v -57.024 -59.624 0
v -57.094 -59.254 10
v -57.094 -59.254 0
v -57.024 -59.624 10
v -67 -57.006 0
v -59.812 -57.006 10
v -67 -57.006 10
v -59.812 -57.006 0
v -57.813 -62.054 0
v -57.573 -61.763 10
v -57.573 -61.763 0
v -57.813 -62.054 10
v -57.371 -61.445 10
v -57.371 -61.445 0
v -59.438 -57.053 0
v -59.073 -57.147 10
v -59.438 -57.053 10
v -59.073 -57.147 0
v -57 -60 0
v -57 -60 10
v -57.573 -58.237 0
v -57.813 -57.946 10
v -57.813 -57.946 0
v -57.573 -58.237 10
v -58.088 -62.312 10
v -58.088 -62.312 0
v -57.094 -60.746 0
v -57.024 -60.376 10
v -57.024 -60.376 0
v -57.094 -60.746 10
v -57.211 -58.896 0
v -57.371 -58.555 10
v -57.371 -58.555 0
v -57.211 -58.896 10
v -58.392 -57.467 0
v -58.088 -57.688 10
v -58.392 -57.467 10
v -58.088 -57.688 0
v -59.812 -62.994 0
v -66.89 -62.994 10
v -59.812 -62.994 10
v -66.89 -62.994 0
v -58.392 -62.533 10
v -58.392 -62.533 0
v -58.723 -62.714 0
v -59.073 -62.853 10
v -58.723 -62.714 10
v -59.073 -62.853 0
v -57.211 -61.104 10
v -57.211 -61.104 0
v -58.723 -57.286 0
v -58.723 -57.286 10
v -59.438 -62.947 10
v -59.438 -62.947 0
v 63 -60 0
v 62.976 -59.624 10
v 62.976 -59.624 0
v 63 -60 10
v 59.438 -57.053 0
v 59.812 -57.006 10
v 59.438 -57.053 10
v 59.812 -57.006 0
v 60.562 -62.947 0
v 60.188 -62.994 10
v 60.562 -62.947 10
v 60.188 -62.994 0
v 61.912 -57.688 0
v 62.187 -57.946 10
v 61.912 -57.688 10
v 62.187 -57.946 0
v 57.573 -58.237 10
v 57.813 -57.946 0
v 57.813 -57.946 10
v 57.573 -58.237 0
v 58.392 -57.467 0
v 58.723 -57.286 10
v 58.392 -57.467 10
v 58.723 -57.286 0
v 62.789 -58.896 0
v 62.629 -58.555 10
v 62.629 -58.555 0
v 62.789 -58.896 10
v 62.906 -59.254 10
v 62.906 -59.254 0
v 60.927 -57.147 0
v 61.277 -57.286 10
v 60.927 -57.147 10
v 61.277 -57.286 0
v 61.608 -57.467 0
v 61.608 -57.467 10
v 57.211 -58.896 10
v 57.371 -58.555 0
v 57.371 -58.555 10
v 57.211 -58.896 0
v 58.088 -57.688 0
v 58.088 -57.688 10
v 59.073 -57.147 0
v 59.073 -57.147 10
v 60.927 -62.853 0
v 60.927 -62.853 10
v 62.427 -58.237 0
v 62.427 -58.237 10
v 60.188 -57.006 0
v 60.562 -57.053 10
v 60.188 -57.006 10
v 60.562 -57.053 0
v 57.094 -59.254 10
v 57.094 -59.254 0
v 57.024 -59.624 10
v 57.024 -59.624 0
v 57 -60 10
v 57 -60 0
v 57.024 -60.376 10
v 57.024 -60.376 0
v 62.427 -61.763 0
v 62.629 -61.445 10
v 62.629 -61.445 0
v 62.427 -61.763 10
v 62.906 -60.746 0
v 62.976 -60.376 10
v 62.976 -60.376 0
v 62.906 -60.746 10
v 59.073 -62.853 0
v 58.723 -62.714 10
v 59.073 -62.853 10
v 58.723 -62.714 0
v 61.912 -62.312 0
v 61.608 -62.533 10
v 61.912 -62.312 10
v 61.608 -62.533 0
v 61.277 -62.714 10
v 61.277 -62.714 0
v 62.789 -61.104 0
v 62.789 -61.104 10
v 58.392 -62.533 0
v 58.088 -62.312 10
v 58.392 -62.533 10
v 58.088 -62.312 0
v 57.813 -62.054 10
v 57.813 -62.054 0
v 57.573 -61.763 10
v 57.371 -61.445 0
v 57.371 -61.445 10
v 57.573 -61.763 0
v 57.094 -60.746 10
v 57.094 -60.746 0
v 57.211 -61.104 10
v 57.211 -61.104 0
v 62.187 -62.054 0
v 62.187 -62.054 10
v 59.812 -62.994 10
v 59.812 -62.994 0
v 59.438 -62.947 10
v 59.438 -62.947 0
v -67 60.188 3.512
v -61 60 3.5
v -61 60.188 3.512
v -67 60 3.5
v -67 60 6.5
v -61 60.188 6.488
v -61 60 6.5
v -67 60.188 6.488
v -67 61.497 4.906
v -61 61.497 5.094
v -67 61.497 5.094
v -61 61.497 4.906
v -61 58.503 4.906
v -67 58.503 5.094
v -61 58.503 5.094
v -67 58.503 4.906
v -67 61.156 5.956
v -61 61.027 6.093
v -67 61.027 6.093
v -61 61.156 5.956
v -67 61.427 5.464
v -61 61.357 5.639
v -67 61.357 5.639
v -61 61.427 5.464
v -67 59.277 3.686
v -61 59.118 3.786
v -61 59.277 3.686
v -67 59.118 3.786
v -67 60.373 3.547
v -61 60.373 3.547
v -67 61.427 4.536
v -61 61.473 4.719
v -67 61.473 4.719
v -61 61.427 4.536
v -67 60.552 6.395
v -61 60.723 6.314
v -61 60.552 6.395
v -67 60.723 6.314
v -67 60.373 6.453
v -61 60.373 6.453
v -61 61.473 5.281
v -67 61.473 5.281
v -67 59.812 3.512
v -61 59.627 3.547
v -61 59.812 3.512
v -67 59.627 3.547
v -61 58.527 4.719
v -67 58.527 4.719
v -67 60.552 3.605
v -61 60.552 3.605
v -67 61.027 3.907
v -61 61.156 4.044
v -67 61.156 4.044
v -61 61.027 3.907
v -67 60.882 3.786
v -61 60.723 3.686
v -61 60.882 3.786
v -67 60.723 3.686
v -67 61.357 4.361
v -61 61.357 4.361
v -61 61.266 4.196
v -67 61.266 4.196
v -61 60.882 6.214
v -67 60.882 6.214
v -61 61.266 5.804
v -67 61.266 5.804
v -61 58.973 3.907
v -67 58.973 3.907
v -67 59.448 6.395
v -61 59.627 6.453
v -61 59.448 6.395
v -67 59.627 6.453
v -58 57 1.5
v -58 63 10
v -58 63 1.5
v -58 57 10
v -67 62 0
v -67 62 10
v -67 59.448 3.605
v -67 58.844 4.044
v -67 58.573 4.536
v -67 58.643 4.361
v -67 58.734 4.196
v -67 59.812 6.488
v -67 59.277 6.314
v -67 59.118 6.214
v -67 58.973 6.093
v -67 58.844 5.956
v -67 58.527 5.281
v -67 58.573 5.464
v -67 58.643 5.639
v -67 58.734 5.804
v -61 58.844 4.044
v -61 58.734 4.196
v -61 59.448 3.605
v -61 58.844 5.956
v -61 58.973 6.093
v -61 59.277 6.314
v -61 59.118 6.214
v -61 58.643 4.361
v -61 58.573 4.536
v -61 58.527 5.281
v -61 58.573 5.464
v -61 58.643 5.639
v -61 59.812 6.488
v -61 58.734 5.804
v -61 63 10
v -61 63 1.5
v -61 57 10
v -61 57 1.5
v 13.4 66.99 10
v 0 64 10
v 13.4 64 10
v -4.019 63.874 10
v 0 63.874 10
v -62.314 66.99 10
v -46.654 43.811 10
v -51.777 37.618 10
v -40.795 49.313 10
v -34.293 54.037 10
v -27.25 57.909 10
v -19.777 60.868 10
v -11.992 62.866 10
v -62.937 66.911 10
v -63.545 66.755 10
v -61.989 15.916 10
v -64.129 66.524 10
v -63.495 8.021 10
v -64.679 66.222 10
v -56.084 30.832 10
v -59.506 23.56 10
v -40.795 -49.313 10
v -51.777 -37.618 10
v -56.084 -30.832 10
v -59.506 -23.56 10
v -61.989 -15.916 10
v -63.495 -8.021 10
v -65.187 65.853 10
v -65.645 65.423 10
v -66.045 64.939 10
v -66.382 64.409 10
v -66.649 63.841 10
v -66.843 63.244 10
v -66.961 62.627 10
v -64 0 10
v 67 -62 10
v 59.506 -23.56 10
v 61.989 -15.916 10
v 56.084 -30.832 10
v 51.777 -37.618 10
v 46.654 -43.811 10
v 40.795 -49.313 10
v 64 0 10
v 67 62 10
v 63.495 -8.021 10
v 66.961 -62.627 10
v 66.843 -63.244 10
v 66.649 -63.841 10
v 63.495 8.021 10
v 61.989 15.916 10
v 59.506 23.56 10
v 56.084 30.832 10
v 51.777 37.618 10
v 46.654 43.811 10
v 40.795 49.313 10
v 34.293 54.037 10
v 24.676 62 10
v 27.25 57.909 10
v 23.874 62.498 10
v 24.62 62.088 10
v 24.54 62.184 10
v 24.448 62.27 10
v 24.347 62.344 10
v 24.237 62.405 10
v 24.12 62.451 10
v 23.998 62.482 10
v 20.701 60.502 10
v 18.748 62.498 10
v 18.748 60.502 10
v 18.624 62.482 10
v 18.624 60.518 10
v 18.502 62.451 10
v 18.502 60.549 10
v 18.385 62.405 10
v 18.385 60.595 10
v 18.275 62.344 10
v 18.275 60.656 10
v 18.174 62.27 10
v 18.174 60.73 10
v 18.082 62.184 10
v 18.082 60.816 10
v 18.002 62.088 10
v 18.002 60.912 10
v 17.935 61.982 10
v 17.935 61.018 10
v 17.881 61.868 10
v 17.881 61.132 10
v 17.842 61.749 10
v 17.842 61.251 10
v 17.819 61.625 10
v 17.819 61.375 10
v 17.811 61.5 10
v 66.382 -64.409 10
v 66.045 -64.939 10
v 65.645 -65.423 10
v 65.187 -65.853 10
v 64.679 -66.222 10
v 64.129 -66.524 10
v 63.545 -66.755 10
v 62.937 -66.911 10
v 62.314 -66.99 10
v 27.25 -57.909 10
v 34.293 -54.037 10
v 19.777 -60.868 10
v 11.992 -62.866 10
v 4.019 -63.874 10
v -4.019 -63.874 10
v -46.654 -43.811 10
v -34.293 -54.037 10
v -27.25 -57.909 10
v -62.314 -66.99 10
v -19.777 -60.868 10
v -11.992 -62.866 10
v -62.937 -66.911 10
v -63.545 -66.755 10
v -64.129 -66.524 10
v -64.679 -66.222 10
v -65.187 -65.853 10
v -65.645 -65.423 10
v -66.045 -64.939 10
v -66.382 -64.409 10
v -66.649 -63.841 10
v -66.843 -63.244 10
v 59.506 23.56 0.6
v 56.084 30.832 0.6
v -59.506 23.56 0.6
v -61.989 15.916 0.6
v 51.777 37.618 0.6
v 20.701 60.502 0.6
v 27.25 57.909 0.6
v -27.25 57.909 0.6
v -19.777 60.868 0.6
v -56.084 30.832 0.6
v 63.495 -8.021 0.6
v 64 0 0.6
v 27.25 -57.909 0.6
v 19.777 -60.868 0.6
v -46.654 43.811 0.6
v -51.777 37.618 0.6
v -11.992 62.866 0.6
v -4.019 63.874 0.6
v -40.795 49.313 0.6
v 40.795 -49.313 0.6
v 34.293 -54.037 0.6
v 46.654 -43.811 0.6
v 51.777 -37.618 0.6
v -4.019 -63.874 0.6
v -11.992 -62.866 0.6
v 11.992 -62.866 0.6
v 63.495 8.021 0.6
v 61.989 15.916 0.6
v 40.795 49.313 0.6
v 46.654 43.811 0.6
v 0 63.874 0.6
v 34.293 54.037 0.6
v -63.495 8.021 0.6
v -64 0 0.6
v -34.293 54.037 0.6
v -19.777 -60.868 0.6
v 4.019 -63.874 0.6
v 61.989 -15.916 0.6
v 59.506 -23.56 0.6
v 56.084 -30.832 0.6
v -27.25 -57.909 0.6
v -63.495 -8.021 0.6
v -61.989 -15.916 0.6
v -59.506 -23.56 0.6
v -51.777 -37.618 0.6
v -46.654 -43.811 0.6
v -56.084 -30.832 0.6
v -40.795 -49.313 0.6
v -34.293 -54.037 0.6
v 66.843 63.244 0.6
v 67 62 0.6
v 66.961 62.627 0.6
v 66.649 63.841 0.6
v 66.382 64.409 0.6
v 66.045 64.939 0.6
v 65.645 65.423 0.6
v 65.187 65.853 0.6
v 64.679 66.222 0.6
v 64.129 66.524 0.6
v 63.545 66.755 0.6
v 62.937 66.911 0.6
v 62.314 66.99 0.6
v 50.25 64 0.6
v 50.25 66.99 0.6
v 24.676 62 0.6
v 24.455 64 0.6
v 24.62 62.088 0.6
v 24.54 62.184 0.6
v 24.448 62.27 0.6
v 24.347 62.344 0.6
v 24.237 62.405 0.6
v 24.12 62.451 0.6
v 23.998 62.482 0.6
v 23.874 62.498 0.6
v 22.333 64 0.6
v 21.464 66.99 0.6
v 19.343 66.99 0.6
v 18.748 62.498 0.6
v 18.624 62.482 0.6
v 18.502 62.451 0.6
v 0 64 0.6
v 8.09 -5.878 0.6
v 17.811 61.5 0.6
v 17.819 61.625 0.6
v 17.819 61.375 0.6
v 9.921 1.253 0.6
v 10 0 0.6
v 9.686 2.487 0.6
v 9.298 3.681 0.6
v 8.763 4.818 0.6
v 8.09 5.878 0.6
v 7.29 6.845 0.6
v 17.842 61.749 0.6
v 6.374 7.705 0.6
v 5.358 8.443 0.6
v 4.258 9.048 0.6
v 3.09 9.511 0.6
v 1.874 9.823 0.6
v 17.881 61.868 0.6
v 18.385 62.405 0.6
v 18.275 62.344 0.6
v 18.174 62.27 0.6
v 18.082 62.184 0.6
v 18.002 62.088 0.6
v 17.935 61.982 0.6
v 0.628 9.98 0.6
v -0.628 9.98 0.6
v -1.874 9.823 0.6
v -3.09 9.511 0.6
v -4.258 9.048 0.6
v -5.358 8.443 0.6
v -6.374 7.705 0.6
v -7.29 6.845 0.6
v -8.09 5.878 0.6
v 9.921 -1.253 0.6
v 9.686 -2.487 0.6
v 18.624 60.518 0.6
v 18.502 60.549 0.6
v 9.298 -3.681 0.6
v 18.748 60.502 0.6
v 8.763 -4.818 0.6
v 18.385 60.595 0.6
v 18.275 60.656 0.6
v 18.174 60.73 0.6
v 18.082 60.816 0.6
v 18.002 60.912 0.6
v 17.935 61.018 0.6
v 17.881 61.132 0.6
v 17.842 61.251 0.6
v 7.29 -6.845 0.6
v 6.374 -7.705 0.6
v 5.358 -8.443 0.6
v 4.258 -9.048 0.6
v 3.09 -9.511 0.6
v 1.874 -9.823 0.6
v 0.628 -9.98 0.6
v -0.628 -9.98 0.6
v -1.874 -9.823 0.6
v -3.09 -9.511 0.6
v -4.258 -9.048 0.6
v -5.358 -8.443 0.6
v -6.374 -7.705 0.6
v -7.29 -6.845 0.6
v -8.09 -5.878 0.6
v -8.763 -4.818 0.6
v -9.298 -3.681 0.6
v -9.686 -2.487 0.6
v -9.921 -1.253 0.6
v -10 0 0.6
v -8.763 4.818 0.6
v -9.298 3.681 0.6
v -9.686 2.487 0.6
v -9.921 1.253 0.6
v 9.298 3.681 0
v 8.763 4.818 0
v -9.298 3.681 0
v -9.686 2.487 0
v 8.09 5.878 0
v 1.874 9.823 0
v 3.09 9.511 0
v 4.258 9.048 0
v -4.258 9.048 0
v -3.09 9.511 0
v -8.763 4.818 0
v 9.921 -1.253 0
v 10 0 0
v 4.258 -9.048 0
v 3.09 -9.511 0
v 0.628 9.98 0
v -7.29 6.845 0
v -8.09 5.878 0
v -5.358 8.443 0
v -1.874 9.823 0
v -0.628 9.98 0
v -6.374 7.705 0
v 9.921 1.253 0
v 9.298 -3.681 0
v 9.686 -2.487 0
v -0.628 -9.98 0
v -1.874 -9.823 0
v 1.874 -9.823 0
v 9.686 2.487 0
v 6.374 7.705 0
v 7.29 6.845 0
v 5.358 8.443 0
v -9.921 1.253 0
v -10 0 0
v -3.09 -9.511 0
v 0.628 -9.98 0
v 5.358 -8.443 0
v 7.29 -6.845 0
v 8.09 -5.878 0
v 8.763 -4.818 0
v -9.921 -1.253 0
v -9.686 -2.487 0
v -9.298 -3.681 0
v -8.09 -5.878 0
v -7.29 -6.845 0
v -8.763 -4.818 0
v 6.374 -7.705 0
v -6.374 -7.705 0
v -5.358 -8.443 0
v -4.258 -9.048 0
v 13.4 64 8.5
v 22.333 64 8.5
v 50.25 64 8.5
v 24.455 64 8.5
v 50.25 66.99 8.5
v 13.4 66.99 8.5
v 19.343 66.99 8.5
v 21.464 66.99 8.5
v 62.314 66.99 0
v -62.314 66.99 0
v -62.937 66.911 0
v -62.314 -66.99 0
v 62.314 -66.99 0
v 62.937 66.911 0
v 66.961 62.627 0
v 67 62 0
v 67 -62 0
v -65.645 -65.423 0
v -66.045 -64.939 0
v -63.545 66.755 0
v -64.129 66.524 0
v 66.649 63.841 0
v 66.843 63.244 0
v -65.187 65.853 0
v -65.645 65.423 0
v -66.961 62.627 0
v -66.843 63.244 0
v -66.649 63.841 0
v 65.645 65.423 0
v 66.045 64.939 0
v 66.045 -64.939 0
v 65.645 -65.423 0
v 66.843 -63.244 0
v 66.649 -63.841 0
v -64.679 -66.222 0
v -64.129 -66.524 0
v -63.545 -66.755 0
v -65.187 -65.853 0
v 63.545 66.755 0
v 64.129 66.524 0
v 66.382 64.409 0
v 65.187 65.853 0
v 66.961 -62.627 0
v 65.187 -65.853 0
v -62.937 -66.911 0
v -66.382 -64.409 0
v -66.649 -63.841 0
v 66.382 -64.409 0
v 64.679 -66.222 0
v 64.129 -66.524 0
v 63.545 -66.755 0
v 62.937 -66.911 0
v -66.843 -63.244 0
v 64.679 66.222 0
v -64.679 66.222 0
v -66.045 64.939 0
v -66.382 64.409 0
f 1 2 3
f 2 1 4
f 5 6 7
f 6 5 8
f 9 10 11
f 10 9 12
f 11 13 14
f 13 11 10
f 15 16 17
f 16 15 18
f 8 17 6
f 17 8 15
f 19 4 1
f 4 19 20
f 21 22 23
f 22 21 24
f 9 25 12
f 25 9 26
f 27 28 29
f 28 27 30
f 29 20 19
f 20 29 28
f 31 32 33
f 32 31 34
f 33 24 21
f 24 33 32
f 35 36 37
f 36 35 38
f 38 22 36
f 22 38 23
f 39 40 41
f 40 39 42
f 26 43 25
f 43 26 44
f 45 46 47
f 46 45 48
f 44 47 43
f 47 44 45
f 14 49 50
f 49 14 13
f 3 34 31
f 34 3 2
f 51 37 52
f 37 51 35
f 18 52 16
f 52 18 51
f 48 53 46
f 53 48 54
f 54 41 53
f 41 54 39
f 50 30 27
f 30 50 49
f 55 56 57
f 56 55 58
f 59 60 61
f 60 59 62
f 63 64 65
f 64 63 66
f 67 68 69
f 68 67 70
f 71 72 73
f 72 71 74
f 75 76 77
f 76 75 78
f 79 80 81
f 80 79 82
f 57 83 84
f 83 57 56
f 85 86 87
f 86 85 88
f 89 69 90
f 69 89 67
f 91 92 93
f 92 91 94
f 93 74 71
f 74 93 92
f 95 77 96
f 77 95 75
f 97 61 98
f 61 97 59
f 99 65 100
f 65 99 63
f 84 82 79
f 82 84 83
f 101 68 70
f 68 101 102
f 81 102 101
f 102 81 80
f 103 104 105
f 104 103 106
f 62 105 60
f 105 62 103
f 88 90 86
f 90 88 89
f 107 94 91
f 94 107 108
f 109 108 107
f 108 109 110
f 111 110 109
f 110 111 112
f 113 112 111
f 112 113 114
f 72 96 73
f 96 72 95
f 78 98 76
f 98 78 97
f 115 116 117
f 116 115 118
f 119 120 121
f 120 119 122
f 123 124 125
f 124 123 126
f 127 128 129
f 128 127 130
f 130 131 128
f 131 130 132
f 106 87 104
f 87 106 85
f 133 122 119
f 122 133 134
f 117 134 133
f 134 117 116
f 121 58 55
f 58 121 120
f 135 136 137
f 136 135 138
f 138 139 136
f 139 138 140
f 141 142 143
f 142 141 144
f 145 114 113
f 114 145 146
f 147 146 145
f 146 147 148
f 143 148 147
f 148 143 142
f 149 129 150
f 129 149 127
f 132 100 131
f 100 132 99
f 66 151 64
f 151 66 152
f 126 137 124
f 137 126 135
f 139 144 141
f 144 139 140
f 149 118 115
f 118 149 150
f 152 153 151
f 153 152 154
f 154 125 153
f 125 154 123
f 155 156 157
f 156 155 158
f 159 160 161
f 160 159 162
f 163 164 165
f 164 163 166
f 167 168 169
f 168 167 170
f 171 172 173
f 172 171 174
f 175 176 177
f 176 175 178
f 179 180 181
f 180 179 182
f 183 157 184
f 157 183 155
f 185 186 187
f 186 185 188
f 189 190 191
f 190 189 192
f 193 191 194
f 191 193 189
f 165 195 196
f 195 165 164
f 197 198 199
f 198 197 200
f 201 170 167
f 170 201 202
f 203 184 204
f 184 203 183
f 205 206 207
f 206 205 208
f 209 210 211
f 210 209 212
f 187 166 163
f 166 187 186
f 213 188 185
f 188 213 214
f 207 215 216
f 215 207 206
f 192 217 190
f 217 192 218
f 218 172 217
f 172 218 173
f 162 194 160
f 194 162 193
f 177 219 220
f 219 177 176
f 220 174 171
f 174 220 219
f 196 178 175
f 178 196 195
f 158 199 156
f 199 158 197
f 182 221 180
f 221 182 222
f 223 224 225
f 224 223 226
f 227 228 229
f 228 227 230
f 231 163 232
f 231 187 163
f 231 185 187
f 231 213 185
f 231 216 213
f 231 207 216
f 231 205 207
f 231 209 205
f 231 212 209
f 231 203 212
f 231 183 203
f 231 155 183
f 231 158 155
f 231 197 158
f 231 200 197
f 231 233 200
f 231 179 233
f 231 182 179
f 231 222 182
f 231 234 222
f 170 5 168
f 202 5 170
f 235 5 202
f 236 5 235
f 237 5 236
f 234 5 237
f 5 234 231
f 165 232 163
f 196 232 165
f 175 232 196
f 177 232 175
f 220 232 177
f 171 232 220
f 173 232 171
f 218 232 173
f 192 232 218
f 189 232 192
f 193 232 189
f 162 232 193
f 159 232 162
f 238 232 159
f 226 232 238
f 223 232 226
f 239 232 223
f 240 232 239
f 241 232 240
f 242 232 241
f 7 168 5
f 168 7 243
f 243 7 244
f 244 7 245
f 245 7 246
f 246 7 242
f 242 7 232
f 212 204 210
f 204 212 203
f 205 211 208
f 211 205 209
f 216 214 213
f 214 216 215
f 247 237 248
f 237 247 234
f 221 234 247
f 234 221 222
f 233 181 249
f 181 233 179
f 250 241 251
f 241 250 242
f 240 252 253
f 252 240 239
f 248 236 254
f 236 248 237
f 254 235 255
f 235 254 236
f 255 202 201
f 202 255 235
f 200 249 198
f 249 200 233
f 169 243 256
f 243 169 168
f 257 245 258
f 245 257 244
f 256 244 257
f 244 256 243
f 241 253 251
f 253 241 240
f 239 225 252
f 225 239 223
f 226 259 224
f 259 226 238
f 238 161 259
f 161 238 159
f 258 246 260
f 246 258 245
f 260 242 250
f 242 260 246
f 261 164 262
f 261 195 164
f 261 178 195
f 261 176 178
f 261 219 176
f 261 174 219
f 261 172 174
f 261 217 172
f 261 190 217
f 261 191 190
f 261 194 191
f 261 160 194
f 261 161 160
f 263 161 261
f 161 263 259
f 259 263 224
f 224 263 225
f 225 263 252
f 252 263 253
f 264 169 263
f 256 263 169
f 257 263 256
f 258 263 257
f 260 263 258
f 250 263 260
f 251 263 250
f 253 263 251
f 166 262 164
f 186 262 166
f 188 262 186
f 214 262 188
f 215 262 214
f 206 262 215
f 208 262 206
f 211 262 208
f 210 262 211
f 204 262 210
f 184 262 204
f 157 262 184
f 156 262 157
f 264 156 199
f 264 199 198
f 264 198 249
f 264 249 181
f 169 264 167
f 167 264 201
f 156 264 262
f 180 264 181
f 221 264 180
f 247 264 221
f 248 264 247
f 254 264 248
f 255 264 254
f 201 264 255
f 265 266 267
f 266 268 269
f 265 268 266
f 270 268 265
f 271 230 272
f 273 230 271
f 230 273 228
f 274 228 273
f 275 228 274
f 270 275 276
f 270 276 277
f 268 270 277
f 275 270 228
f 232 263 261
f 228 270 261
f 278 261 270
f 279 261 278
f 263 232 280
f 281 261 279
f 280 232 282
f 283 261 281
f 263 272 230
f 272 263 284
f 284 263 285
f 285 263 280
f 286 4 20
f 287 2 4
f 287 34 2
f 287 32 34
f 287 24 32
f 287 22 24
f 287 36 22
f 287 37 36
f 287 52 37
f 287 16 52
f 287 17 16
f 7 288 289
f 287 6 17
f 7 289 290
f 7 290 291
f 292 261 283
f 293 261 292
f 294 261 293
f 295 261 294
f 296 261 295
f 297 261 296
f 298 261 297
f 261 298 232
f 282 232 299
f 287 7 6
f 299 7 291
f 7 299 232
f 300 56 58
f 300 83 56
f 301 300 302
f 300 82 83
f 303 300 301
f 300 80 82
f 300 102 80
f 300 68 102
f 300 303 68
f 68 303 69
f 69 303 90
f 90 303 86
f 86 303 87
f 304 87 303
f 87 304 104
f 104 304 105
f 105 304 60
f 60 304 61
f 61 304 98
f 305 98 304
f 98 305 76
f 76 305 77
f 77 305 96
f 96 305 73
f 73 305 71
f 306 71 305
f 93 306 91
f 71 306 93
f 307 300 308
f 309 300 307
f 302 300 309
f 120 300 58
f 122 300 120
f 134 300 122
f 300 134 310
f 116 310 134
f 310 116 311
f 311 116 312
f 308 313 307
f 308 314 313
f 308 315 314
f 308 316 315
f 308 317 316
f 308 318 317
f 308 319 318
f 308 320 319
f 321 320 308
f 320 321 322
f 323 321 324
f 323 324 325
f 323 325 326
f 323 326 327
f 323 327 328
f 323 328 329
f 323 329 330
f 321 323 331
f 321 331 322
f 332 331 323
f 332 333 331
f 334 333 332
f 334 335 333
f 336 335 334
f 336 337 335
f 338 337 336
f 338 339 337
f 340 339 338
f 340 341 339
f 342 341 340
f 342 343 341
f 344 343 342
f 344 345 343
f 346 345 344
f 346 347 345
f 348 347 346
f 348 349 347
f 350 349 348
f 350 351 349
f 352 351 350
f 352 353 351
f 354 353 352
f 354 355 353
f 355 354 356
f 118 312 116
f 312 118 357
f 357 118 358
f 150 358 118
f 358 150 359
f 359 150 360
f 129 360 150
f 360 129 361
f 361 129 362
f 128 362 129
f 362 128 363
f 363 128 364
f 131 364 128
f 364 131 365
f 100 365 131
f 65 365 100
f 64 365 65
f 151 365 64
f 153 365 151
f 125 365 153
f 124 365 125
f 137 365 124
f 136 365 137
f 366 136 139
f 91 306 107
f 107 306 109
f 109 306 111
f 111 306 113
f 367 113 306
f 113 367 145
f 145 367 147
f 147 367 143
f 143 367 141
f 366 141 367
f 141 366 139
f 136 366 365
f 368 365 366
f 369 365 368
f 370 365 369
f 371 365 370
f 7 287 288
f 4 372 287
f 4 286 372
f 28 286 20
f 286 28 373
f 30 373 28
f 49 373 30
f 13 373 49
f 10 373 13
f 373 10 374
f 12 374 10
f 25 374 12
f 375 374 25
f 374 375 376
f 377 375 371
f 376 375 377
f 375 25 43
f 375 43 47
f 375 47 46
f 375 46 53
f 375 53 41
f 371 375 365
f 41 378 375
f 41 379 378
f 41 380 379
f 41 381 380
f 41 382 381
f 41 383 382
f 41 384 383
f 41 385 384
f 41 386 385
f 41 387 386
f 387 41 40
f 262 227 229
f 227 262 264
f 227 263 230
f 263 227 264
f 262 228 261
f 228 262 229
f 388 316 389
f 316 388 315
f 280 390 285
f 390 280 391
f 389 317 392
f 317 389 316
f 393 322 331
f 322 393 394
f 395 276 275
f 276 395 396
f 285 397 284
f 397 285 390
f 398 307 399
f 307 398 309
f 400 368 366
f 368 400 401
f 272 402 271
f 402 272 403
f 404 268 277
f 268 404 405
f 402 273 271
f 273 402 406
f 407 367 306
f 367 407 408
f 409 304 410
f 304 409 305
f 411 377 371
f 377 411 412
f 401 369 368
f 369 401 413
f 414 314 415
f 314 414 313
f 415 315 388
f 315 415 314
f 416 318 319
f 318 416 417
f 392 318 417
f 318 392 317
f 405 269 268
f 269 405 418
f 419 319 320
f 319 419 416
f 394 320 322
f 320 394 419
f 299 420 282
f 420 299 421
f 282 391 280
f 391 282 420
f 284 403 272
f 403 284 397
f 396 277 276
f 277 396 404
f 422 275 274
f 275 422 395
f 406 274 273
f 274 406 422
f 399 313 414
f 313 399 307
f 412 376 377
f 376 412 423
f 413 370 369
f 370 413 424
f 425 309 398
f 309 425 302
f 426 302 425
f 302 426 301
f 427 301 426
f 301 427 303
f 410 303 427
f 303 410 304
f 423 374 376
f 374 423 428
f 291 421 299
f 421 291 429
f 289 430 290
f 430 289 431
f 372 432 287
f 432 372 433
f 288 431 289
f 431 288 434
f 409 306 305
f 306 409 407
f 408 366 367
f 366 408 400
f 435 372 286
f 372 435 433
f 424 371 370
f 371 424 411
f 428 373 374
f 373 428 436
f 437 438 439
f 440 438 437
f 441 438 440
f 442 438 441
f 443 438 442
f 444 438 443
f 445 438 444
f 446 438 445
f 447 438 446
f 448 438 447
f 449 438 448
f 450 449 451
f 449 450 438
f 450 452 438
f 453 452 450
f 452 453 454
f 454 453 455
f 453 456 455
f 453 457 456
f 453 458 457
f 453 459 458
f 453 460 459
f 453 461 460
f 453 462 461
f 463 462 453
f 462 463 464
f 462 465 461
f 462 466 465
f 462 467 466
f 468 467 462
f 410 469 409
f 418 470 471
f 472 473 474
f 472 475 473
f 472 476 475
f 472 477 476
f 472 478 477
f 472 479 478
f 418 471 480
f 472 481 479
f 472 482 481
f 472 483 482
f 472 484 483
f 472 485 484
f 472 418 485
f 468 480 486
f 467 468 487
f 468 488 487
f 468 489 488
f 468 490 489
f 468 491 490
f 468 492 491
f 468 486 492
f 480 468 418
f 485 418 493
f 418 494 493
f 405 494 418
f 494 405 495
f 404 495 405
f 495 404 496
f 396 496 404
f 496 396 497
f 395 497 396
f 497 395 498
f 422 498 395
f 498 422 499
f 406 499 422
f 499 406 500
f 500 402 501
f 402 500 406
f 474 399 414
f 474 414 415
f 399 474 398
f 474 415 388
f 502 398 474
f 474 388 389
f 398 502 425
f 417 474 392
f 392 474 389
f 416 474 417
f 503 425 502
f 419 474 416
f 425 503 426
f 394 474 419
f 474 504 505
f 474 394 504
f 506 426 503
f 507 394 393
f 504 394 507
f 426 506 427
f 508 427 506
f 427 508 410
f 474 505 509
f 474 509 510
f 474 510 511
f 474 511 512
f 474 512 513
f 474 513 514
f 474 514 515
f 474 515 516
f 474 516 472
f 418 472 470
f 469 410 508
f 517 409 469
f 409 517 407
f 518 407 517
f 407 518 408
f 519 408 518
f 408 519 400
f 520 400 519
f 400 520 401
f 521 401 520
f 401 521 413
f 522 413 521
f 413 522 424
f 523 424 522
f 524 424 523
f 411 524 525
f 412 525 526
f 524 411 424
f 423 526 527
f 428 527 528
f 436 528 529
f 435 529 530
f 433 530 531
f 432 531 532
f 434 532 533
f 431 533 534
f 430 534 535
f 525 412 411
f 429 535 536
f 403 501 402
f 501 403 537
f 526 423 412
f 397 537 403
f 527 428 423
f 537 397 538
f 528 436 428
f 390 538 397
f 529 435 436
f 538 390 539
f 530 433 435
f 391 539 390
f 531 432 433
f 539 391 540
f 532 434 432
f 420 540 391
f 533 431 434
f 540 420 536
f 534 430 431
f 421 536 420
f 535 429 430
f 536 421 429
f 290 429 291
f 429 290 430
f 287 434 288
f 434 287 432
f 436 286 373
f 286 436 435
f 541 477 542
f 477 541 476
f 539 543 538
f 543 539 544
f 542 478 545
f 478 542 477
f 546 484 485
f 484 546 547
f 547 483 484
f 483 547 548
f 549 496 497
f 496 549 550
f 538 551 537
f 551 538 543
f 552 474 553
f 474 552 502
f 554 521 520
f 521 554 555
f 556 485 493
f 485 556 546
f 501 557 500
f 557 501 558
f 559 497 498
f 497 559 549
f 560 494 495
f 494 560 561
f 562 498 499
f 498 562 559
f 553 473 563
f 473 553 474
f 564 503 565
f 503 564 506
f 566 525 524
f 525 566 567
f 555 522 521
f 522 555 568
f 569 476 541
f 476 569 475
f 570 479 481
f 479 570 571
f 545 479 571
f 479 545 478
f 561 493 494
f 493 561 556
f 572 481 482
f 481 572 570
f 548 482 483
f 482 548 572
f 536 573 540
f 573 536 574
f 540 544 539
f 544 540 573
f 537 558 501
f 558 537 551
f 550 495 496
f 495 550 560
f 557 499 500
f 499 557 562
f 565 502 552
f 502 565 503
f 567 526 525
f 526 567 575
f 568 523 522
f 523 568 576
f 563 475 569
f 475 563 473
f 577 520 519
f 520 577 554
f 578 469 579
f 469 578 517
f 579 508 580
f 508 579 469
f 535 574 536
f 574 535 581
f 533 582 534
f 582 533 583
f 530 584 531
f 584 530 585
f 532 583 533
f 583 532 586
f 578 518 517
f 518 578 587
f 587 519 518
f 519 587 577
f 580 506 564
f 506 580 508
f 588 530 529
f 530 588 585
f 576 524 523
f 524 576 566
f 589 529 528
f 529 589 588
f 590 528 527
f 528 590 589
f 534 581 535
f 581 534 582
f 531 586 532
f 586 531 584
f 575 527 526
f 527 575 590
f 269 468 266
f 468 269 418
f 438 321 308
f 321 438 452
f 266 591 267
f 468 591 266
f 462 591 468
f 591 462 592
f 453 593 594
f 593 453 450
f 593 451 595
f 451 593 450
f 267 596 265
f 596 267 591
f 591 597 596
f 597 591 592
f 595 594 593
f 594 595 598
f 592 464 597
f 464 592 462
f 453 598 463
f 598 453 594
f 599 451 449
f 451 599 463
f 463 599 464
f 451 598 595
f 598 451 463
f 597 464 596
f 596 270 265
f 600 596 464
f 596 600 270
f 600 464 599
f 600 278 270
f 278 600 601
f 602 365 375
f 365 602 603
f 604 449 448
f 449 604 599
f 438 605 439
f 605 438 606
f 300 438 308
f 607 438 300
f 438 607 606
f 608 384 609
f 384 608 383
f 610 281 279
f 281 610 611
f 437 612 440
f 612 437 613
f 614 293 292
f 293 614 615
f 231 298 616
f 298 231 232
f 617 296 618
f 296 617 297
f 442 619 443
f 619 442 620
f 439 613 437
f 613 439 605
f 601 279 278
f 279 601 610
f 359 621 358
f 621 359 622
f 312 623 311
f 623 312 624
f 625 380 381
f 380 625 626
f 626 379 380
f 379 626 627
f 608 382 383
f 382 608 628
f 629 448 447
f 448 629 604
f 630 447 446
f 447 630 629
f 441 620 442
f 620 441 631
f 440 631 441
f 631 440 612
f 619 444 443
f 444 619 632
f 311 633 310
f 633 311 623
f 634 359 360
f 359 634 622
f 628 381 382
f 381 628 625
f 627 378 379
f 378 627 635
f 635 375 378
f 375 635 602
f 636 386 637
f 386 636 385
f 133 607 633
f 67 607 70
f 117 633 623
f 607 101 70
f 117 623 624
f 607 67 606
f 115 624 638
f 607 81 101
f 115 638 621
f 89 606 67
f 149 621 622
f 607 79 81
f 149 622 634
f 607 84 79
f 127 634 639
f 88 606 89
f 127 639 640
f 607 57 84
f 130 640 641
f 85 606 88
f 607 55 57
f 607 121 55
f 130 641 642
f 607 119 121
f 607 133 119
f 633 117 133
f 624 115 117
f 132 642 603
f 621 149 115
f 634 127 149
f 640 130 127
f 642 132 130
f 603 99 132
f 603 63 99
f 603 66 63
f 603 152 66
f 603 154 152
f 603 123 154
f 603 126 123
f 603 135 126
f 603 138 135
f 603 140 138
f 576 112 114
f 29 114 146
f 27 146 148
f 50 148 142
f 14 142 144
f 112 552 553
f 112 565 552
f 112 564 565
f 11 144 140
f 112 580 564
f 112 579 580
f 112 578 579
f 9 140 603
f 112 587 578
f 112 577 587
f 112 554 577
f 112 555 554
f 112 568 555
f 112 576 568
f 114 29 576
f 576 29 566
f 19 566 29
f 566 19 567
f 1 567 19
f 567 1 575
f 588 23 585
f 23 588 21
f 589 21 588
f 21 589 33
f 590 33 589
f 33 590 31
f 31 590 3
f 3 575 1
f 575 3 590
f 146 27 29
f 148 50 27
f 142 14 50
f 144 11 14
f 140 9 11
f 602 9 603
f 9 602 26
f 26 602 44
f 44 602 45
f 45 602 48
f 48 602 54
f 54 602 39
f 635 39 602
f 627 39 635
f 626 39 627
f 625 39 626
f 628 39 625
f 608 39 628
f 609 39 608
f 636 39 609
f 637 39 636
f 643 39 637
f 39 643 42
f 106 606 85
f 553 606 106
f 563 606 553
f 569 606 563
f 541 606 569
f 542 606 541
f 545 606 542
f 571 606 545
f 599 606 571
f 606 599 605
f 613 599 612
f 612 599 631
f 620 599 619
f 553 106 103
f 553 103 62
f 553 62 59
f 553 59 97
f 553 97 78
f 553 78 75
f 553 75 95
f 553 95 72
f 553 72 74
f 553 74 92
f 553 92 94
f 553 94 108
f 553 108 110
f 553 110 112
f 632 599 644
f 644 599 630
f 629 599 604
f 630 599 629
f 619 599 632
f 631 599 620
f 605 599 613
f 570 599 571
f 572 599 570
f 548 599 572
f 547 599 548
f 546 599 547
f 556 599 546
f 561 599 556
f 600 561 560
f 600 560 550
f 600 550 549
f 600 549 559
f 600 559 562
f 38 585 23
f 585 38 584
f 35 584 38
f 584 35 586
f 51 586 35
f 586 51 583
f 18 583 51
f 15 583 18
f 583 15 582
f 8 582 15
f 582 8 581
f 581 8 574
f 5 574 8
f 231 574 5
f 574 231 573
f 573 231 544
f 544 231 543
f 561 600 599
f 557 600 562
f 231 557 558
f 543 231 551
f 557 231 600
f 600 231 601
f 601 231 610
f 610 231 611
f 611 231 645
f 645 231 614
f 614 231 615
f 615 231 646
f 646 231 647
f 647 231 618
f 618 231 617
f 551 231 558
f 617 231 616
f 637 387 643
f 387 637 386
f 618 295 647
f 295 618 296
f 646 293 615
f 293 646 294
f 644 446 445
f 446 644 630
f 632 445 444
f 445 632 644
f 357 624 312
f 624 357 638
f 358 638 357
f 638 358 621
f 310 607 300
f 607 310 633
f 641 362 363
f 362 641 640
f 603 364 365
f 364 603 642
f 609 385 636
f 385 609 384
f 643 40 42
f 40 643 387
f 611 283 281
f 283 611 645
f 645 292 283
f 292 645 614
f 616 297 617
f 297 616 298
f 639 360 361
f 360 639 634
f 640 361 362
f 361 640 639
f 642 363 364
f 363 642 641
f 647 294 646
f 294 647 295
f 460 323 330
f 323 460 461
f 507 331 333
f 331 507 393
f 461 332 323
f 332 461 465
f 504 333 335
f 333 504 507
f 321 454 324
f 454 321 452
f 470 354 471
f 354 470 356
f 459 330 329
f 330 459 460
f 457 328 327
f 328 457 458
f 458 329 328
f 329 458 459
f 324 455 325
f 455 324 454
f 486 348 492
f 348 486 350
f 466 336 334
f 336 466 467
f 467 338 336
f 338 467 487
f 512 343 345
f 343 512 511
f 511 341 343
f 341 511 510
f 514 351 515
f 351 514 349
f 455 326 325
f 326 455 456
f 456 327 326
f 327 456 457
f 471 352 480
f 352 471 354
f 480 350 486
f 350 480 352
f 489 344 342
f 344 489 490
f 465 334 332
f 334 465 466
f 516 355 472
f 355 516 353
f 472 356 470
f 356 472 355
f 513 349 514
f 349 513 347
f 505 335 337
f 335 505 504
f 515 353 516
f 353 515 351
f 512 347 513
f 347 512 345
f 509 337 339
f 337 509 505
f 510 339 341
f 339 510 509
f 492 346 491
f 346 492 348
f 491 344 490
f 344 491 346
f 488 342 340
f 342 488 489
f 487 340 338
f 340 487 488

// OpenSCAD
$fn = 50;


union() {
	difference() {
		union() {
			translate(v = [0, 0, 0]) {
				rotate(a = [0, 0, 0]) {
					hull() {
						translate(v = [-62.0000000000, 62.0000000000, 0]) {
							rotate(a = [0, 0, 0]) {
								translate(v = [0, 0, 0]) {
									rotate(a = [0, 0, 0]) {
										cylinder(h = 10, r = 5);
									}
								}
							}
						}
						translate(v = [62.0000000000, 62.0000000000, 0]) {
							rotate(a = [0, 0, 0]) {
								translate(v = [0, 0, 0]) {
									rotate(a = [0, 0, 0]) {
										cylinder(h = 10, r = 5);
									}
								}
							}
						}
						translate(v = [-62.0000000000, -62.0000000000, 0]) {
							rotate(a = [0, 0, 0]) {
								translate(v = [0, 0, 0]) {
									rotate(a = [0, 0, 0]) {
										cylinder(h = 10, r = 5);
									}
								}
							}
						}
						translate(v = [62.0000000000, -62.0000000000, 0]) {
							rotate(a = [0, 0, 0]) {
								translate(v = [0, 0, 0]) {
									rotate(a = [0, 0, 0]) {
										cylinder(h = 10, r = 5);
									}
								}
							}
						}
					}
				}
			}
		}
		union() {
			translate(v = [-67.5000000000, -60.0000000000, -125]) {
				rotate(a = [0, 0, 0]) {
					hull() {
						translate(v = [7.5000000000, 0, 0]) {
							rotate(a = [0, 0, 0]) {
								translate(v = [0, 0, 0]) {
									rotate(a = [0, 0, 0]) {
										cylinder(h = 250, r = 3.0000000000);
									}
								}
							}
						}
						translate(v = [-7.5000000000, 0, 0]) {
							rotate(a = [0, 0, 0]) {
								translate(v = [0, 0, 0]) {
									rotate(a = [0, 0, 0]) {
										cylinder(h = 250, r = 3.0000000000);
									}
								}
							}
						}
					}
				}
			}
			translate(v = [60.0000000000, -60.0000000000, -125.0000000000]) {
				rotate(a = [0, 0, 0]) {
					cylinder(h = 250, r = 3.0000000000);
				}
			}
			translate(v = [-67.0000000000, 60.0000000000, 5.0000000000]) {
				rotate(a = [0, 90, 0]) {
					cylinder(h = 9, r = 1.5000000000);
				}
			}
			translate(v = [-61.0000000000, 57.0000000000, 1.5000000000]) {
				rotate(a = [0, 0, 0]) {
					cube(size = [3, 6, 8.5000000000]);
				}
			}
			translate(v = [0, 0, 0.6000000000]) {
				rotate(a = [0, 0, 0]) {
					cylinder(h = 12.4000000000, r = 64.0000000000);
				}
			}
			translate(v = [0, 0, -5.0000000000]) {
				rotate(a = [0, 0, 0]) {
					cylinder(h = 10, r = 10.0000000000);
				}
			}
			translate(v = [0.0000000000, 62.0000000000, 0.6000000000]) {
				rotate(a = [0, 0, 0]) {
					cube(size = [67.0000000000, 2, 12.4000000000]);
				}
			}
			translate(v = [50.2500000000, 62.0000000000, 0.6000000000]) {
				rotate(a = [0, 0, 0]) {
					cube(size = [16.7500000000, 5, 12.4000000000]);
				}
			}
			translate(v = [13.4000000000, 62.0000000000, 8.5000000000]) {
				rotate(a = [0, 0, 0]) {
					cube(size = [53.6000000000, 5, 1.5000000000]);
				}
			}
			translate(v = [18.5833333333, 67.7500000000, 0.6000000000]) {
				rotate(a = [0, 0, -45]) {
					cube(size = [7.5000000000, 1.5000000000, 12.4000000000]);
				}
			}
			translate(v = [12.0610000000, 60.5000000000, 0.6000000000]) {
				rotate(a = [0, 0, 0]) {
					cube(size = [7.5000000000, 2, 9.4000000000]);
				}
			}
		}
	}
	union() {
		translate(v = [21.3110000000, 61.5000000000, 0]) {
			rotate(a = [0, 0, 0]) {
				hull() {
					translate(v = [2.5000000000, 0, 0]) {
						rotate(a = [0, 0, 0]) {
							translate(v = [0, 0, 0]) {
								rotate(a = [0, 0, 0]) {
									cylinder(h = 10, r = 1.0000000000);
								}
							}
						}
					}
					translate(v = [-2.5000000000, 0, 0]) {
						rotate(a = [0, 0, 0]) {
							translate(v = [0, 0, 0]) {
								rotate(a = [0, 0, 0]) {
									cylinder(h = 10, r = 1.0000000000);
								}
							}
						}
					}
				}
			}
		}
	}
}
